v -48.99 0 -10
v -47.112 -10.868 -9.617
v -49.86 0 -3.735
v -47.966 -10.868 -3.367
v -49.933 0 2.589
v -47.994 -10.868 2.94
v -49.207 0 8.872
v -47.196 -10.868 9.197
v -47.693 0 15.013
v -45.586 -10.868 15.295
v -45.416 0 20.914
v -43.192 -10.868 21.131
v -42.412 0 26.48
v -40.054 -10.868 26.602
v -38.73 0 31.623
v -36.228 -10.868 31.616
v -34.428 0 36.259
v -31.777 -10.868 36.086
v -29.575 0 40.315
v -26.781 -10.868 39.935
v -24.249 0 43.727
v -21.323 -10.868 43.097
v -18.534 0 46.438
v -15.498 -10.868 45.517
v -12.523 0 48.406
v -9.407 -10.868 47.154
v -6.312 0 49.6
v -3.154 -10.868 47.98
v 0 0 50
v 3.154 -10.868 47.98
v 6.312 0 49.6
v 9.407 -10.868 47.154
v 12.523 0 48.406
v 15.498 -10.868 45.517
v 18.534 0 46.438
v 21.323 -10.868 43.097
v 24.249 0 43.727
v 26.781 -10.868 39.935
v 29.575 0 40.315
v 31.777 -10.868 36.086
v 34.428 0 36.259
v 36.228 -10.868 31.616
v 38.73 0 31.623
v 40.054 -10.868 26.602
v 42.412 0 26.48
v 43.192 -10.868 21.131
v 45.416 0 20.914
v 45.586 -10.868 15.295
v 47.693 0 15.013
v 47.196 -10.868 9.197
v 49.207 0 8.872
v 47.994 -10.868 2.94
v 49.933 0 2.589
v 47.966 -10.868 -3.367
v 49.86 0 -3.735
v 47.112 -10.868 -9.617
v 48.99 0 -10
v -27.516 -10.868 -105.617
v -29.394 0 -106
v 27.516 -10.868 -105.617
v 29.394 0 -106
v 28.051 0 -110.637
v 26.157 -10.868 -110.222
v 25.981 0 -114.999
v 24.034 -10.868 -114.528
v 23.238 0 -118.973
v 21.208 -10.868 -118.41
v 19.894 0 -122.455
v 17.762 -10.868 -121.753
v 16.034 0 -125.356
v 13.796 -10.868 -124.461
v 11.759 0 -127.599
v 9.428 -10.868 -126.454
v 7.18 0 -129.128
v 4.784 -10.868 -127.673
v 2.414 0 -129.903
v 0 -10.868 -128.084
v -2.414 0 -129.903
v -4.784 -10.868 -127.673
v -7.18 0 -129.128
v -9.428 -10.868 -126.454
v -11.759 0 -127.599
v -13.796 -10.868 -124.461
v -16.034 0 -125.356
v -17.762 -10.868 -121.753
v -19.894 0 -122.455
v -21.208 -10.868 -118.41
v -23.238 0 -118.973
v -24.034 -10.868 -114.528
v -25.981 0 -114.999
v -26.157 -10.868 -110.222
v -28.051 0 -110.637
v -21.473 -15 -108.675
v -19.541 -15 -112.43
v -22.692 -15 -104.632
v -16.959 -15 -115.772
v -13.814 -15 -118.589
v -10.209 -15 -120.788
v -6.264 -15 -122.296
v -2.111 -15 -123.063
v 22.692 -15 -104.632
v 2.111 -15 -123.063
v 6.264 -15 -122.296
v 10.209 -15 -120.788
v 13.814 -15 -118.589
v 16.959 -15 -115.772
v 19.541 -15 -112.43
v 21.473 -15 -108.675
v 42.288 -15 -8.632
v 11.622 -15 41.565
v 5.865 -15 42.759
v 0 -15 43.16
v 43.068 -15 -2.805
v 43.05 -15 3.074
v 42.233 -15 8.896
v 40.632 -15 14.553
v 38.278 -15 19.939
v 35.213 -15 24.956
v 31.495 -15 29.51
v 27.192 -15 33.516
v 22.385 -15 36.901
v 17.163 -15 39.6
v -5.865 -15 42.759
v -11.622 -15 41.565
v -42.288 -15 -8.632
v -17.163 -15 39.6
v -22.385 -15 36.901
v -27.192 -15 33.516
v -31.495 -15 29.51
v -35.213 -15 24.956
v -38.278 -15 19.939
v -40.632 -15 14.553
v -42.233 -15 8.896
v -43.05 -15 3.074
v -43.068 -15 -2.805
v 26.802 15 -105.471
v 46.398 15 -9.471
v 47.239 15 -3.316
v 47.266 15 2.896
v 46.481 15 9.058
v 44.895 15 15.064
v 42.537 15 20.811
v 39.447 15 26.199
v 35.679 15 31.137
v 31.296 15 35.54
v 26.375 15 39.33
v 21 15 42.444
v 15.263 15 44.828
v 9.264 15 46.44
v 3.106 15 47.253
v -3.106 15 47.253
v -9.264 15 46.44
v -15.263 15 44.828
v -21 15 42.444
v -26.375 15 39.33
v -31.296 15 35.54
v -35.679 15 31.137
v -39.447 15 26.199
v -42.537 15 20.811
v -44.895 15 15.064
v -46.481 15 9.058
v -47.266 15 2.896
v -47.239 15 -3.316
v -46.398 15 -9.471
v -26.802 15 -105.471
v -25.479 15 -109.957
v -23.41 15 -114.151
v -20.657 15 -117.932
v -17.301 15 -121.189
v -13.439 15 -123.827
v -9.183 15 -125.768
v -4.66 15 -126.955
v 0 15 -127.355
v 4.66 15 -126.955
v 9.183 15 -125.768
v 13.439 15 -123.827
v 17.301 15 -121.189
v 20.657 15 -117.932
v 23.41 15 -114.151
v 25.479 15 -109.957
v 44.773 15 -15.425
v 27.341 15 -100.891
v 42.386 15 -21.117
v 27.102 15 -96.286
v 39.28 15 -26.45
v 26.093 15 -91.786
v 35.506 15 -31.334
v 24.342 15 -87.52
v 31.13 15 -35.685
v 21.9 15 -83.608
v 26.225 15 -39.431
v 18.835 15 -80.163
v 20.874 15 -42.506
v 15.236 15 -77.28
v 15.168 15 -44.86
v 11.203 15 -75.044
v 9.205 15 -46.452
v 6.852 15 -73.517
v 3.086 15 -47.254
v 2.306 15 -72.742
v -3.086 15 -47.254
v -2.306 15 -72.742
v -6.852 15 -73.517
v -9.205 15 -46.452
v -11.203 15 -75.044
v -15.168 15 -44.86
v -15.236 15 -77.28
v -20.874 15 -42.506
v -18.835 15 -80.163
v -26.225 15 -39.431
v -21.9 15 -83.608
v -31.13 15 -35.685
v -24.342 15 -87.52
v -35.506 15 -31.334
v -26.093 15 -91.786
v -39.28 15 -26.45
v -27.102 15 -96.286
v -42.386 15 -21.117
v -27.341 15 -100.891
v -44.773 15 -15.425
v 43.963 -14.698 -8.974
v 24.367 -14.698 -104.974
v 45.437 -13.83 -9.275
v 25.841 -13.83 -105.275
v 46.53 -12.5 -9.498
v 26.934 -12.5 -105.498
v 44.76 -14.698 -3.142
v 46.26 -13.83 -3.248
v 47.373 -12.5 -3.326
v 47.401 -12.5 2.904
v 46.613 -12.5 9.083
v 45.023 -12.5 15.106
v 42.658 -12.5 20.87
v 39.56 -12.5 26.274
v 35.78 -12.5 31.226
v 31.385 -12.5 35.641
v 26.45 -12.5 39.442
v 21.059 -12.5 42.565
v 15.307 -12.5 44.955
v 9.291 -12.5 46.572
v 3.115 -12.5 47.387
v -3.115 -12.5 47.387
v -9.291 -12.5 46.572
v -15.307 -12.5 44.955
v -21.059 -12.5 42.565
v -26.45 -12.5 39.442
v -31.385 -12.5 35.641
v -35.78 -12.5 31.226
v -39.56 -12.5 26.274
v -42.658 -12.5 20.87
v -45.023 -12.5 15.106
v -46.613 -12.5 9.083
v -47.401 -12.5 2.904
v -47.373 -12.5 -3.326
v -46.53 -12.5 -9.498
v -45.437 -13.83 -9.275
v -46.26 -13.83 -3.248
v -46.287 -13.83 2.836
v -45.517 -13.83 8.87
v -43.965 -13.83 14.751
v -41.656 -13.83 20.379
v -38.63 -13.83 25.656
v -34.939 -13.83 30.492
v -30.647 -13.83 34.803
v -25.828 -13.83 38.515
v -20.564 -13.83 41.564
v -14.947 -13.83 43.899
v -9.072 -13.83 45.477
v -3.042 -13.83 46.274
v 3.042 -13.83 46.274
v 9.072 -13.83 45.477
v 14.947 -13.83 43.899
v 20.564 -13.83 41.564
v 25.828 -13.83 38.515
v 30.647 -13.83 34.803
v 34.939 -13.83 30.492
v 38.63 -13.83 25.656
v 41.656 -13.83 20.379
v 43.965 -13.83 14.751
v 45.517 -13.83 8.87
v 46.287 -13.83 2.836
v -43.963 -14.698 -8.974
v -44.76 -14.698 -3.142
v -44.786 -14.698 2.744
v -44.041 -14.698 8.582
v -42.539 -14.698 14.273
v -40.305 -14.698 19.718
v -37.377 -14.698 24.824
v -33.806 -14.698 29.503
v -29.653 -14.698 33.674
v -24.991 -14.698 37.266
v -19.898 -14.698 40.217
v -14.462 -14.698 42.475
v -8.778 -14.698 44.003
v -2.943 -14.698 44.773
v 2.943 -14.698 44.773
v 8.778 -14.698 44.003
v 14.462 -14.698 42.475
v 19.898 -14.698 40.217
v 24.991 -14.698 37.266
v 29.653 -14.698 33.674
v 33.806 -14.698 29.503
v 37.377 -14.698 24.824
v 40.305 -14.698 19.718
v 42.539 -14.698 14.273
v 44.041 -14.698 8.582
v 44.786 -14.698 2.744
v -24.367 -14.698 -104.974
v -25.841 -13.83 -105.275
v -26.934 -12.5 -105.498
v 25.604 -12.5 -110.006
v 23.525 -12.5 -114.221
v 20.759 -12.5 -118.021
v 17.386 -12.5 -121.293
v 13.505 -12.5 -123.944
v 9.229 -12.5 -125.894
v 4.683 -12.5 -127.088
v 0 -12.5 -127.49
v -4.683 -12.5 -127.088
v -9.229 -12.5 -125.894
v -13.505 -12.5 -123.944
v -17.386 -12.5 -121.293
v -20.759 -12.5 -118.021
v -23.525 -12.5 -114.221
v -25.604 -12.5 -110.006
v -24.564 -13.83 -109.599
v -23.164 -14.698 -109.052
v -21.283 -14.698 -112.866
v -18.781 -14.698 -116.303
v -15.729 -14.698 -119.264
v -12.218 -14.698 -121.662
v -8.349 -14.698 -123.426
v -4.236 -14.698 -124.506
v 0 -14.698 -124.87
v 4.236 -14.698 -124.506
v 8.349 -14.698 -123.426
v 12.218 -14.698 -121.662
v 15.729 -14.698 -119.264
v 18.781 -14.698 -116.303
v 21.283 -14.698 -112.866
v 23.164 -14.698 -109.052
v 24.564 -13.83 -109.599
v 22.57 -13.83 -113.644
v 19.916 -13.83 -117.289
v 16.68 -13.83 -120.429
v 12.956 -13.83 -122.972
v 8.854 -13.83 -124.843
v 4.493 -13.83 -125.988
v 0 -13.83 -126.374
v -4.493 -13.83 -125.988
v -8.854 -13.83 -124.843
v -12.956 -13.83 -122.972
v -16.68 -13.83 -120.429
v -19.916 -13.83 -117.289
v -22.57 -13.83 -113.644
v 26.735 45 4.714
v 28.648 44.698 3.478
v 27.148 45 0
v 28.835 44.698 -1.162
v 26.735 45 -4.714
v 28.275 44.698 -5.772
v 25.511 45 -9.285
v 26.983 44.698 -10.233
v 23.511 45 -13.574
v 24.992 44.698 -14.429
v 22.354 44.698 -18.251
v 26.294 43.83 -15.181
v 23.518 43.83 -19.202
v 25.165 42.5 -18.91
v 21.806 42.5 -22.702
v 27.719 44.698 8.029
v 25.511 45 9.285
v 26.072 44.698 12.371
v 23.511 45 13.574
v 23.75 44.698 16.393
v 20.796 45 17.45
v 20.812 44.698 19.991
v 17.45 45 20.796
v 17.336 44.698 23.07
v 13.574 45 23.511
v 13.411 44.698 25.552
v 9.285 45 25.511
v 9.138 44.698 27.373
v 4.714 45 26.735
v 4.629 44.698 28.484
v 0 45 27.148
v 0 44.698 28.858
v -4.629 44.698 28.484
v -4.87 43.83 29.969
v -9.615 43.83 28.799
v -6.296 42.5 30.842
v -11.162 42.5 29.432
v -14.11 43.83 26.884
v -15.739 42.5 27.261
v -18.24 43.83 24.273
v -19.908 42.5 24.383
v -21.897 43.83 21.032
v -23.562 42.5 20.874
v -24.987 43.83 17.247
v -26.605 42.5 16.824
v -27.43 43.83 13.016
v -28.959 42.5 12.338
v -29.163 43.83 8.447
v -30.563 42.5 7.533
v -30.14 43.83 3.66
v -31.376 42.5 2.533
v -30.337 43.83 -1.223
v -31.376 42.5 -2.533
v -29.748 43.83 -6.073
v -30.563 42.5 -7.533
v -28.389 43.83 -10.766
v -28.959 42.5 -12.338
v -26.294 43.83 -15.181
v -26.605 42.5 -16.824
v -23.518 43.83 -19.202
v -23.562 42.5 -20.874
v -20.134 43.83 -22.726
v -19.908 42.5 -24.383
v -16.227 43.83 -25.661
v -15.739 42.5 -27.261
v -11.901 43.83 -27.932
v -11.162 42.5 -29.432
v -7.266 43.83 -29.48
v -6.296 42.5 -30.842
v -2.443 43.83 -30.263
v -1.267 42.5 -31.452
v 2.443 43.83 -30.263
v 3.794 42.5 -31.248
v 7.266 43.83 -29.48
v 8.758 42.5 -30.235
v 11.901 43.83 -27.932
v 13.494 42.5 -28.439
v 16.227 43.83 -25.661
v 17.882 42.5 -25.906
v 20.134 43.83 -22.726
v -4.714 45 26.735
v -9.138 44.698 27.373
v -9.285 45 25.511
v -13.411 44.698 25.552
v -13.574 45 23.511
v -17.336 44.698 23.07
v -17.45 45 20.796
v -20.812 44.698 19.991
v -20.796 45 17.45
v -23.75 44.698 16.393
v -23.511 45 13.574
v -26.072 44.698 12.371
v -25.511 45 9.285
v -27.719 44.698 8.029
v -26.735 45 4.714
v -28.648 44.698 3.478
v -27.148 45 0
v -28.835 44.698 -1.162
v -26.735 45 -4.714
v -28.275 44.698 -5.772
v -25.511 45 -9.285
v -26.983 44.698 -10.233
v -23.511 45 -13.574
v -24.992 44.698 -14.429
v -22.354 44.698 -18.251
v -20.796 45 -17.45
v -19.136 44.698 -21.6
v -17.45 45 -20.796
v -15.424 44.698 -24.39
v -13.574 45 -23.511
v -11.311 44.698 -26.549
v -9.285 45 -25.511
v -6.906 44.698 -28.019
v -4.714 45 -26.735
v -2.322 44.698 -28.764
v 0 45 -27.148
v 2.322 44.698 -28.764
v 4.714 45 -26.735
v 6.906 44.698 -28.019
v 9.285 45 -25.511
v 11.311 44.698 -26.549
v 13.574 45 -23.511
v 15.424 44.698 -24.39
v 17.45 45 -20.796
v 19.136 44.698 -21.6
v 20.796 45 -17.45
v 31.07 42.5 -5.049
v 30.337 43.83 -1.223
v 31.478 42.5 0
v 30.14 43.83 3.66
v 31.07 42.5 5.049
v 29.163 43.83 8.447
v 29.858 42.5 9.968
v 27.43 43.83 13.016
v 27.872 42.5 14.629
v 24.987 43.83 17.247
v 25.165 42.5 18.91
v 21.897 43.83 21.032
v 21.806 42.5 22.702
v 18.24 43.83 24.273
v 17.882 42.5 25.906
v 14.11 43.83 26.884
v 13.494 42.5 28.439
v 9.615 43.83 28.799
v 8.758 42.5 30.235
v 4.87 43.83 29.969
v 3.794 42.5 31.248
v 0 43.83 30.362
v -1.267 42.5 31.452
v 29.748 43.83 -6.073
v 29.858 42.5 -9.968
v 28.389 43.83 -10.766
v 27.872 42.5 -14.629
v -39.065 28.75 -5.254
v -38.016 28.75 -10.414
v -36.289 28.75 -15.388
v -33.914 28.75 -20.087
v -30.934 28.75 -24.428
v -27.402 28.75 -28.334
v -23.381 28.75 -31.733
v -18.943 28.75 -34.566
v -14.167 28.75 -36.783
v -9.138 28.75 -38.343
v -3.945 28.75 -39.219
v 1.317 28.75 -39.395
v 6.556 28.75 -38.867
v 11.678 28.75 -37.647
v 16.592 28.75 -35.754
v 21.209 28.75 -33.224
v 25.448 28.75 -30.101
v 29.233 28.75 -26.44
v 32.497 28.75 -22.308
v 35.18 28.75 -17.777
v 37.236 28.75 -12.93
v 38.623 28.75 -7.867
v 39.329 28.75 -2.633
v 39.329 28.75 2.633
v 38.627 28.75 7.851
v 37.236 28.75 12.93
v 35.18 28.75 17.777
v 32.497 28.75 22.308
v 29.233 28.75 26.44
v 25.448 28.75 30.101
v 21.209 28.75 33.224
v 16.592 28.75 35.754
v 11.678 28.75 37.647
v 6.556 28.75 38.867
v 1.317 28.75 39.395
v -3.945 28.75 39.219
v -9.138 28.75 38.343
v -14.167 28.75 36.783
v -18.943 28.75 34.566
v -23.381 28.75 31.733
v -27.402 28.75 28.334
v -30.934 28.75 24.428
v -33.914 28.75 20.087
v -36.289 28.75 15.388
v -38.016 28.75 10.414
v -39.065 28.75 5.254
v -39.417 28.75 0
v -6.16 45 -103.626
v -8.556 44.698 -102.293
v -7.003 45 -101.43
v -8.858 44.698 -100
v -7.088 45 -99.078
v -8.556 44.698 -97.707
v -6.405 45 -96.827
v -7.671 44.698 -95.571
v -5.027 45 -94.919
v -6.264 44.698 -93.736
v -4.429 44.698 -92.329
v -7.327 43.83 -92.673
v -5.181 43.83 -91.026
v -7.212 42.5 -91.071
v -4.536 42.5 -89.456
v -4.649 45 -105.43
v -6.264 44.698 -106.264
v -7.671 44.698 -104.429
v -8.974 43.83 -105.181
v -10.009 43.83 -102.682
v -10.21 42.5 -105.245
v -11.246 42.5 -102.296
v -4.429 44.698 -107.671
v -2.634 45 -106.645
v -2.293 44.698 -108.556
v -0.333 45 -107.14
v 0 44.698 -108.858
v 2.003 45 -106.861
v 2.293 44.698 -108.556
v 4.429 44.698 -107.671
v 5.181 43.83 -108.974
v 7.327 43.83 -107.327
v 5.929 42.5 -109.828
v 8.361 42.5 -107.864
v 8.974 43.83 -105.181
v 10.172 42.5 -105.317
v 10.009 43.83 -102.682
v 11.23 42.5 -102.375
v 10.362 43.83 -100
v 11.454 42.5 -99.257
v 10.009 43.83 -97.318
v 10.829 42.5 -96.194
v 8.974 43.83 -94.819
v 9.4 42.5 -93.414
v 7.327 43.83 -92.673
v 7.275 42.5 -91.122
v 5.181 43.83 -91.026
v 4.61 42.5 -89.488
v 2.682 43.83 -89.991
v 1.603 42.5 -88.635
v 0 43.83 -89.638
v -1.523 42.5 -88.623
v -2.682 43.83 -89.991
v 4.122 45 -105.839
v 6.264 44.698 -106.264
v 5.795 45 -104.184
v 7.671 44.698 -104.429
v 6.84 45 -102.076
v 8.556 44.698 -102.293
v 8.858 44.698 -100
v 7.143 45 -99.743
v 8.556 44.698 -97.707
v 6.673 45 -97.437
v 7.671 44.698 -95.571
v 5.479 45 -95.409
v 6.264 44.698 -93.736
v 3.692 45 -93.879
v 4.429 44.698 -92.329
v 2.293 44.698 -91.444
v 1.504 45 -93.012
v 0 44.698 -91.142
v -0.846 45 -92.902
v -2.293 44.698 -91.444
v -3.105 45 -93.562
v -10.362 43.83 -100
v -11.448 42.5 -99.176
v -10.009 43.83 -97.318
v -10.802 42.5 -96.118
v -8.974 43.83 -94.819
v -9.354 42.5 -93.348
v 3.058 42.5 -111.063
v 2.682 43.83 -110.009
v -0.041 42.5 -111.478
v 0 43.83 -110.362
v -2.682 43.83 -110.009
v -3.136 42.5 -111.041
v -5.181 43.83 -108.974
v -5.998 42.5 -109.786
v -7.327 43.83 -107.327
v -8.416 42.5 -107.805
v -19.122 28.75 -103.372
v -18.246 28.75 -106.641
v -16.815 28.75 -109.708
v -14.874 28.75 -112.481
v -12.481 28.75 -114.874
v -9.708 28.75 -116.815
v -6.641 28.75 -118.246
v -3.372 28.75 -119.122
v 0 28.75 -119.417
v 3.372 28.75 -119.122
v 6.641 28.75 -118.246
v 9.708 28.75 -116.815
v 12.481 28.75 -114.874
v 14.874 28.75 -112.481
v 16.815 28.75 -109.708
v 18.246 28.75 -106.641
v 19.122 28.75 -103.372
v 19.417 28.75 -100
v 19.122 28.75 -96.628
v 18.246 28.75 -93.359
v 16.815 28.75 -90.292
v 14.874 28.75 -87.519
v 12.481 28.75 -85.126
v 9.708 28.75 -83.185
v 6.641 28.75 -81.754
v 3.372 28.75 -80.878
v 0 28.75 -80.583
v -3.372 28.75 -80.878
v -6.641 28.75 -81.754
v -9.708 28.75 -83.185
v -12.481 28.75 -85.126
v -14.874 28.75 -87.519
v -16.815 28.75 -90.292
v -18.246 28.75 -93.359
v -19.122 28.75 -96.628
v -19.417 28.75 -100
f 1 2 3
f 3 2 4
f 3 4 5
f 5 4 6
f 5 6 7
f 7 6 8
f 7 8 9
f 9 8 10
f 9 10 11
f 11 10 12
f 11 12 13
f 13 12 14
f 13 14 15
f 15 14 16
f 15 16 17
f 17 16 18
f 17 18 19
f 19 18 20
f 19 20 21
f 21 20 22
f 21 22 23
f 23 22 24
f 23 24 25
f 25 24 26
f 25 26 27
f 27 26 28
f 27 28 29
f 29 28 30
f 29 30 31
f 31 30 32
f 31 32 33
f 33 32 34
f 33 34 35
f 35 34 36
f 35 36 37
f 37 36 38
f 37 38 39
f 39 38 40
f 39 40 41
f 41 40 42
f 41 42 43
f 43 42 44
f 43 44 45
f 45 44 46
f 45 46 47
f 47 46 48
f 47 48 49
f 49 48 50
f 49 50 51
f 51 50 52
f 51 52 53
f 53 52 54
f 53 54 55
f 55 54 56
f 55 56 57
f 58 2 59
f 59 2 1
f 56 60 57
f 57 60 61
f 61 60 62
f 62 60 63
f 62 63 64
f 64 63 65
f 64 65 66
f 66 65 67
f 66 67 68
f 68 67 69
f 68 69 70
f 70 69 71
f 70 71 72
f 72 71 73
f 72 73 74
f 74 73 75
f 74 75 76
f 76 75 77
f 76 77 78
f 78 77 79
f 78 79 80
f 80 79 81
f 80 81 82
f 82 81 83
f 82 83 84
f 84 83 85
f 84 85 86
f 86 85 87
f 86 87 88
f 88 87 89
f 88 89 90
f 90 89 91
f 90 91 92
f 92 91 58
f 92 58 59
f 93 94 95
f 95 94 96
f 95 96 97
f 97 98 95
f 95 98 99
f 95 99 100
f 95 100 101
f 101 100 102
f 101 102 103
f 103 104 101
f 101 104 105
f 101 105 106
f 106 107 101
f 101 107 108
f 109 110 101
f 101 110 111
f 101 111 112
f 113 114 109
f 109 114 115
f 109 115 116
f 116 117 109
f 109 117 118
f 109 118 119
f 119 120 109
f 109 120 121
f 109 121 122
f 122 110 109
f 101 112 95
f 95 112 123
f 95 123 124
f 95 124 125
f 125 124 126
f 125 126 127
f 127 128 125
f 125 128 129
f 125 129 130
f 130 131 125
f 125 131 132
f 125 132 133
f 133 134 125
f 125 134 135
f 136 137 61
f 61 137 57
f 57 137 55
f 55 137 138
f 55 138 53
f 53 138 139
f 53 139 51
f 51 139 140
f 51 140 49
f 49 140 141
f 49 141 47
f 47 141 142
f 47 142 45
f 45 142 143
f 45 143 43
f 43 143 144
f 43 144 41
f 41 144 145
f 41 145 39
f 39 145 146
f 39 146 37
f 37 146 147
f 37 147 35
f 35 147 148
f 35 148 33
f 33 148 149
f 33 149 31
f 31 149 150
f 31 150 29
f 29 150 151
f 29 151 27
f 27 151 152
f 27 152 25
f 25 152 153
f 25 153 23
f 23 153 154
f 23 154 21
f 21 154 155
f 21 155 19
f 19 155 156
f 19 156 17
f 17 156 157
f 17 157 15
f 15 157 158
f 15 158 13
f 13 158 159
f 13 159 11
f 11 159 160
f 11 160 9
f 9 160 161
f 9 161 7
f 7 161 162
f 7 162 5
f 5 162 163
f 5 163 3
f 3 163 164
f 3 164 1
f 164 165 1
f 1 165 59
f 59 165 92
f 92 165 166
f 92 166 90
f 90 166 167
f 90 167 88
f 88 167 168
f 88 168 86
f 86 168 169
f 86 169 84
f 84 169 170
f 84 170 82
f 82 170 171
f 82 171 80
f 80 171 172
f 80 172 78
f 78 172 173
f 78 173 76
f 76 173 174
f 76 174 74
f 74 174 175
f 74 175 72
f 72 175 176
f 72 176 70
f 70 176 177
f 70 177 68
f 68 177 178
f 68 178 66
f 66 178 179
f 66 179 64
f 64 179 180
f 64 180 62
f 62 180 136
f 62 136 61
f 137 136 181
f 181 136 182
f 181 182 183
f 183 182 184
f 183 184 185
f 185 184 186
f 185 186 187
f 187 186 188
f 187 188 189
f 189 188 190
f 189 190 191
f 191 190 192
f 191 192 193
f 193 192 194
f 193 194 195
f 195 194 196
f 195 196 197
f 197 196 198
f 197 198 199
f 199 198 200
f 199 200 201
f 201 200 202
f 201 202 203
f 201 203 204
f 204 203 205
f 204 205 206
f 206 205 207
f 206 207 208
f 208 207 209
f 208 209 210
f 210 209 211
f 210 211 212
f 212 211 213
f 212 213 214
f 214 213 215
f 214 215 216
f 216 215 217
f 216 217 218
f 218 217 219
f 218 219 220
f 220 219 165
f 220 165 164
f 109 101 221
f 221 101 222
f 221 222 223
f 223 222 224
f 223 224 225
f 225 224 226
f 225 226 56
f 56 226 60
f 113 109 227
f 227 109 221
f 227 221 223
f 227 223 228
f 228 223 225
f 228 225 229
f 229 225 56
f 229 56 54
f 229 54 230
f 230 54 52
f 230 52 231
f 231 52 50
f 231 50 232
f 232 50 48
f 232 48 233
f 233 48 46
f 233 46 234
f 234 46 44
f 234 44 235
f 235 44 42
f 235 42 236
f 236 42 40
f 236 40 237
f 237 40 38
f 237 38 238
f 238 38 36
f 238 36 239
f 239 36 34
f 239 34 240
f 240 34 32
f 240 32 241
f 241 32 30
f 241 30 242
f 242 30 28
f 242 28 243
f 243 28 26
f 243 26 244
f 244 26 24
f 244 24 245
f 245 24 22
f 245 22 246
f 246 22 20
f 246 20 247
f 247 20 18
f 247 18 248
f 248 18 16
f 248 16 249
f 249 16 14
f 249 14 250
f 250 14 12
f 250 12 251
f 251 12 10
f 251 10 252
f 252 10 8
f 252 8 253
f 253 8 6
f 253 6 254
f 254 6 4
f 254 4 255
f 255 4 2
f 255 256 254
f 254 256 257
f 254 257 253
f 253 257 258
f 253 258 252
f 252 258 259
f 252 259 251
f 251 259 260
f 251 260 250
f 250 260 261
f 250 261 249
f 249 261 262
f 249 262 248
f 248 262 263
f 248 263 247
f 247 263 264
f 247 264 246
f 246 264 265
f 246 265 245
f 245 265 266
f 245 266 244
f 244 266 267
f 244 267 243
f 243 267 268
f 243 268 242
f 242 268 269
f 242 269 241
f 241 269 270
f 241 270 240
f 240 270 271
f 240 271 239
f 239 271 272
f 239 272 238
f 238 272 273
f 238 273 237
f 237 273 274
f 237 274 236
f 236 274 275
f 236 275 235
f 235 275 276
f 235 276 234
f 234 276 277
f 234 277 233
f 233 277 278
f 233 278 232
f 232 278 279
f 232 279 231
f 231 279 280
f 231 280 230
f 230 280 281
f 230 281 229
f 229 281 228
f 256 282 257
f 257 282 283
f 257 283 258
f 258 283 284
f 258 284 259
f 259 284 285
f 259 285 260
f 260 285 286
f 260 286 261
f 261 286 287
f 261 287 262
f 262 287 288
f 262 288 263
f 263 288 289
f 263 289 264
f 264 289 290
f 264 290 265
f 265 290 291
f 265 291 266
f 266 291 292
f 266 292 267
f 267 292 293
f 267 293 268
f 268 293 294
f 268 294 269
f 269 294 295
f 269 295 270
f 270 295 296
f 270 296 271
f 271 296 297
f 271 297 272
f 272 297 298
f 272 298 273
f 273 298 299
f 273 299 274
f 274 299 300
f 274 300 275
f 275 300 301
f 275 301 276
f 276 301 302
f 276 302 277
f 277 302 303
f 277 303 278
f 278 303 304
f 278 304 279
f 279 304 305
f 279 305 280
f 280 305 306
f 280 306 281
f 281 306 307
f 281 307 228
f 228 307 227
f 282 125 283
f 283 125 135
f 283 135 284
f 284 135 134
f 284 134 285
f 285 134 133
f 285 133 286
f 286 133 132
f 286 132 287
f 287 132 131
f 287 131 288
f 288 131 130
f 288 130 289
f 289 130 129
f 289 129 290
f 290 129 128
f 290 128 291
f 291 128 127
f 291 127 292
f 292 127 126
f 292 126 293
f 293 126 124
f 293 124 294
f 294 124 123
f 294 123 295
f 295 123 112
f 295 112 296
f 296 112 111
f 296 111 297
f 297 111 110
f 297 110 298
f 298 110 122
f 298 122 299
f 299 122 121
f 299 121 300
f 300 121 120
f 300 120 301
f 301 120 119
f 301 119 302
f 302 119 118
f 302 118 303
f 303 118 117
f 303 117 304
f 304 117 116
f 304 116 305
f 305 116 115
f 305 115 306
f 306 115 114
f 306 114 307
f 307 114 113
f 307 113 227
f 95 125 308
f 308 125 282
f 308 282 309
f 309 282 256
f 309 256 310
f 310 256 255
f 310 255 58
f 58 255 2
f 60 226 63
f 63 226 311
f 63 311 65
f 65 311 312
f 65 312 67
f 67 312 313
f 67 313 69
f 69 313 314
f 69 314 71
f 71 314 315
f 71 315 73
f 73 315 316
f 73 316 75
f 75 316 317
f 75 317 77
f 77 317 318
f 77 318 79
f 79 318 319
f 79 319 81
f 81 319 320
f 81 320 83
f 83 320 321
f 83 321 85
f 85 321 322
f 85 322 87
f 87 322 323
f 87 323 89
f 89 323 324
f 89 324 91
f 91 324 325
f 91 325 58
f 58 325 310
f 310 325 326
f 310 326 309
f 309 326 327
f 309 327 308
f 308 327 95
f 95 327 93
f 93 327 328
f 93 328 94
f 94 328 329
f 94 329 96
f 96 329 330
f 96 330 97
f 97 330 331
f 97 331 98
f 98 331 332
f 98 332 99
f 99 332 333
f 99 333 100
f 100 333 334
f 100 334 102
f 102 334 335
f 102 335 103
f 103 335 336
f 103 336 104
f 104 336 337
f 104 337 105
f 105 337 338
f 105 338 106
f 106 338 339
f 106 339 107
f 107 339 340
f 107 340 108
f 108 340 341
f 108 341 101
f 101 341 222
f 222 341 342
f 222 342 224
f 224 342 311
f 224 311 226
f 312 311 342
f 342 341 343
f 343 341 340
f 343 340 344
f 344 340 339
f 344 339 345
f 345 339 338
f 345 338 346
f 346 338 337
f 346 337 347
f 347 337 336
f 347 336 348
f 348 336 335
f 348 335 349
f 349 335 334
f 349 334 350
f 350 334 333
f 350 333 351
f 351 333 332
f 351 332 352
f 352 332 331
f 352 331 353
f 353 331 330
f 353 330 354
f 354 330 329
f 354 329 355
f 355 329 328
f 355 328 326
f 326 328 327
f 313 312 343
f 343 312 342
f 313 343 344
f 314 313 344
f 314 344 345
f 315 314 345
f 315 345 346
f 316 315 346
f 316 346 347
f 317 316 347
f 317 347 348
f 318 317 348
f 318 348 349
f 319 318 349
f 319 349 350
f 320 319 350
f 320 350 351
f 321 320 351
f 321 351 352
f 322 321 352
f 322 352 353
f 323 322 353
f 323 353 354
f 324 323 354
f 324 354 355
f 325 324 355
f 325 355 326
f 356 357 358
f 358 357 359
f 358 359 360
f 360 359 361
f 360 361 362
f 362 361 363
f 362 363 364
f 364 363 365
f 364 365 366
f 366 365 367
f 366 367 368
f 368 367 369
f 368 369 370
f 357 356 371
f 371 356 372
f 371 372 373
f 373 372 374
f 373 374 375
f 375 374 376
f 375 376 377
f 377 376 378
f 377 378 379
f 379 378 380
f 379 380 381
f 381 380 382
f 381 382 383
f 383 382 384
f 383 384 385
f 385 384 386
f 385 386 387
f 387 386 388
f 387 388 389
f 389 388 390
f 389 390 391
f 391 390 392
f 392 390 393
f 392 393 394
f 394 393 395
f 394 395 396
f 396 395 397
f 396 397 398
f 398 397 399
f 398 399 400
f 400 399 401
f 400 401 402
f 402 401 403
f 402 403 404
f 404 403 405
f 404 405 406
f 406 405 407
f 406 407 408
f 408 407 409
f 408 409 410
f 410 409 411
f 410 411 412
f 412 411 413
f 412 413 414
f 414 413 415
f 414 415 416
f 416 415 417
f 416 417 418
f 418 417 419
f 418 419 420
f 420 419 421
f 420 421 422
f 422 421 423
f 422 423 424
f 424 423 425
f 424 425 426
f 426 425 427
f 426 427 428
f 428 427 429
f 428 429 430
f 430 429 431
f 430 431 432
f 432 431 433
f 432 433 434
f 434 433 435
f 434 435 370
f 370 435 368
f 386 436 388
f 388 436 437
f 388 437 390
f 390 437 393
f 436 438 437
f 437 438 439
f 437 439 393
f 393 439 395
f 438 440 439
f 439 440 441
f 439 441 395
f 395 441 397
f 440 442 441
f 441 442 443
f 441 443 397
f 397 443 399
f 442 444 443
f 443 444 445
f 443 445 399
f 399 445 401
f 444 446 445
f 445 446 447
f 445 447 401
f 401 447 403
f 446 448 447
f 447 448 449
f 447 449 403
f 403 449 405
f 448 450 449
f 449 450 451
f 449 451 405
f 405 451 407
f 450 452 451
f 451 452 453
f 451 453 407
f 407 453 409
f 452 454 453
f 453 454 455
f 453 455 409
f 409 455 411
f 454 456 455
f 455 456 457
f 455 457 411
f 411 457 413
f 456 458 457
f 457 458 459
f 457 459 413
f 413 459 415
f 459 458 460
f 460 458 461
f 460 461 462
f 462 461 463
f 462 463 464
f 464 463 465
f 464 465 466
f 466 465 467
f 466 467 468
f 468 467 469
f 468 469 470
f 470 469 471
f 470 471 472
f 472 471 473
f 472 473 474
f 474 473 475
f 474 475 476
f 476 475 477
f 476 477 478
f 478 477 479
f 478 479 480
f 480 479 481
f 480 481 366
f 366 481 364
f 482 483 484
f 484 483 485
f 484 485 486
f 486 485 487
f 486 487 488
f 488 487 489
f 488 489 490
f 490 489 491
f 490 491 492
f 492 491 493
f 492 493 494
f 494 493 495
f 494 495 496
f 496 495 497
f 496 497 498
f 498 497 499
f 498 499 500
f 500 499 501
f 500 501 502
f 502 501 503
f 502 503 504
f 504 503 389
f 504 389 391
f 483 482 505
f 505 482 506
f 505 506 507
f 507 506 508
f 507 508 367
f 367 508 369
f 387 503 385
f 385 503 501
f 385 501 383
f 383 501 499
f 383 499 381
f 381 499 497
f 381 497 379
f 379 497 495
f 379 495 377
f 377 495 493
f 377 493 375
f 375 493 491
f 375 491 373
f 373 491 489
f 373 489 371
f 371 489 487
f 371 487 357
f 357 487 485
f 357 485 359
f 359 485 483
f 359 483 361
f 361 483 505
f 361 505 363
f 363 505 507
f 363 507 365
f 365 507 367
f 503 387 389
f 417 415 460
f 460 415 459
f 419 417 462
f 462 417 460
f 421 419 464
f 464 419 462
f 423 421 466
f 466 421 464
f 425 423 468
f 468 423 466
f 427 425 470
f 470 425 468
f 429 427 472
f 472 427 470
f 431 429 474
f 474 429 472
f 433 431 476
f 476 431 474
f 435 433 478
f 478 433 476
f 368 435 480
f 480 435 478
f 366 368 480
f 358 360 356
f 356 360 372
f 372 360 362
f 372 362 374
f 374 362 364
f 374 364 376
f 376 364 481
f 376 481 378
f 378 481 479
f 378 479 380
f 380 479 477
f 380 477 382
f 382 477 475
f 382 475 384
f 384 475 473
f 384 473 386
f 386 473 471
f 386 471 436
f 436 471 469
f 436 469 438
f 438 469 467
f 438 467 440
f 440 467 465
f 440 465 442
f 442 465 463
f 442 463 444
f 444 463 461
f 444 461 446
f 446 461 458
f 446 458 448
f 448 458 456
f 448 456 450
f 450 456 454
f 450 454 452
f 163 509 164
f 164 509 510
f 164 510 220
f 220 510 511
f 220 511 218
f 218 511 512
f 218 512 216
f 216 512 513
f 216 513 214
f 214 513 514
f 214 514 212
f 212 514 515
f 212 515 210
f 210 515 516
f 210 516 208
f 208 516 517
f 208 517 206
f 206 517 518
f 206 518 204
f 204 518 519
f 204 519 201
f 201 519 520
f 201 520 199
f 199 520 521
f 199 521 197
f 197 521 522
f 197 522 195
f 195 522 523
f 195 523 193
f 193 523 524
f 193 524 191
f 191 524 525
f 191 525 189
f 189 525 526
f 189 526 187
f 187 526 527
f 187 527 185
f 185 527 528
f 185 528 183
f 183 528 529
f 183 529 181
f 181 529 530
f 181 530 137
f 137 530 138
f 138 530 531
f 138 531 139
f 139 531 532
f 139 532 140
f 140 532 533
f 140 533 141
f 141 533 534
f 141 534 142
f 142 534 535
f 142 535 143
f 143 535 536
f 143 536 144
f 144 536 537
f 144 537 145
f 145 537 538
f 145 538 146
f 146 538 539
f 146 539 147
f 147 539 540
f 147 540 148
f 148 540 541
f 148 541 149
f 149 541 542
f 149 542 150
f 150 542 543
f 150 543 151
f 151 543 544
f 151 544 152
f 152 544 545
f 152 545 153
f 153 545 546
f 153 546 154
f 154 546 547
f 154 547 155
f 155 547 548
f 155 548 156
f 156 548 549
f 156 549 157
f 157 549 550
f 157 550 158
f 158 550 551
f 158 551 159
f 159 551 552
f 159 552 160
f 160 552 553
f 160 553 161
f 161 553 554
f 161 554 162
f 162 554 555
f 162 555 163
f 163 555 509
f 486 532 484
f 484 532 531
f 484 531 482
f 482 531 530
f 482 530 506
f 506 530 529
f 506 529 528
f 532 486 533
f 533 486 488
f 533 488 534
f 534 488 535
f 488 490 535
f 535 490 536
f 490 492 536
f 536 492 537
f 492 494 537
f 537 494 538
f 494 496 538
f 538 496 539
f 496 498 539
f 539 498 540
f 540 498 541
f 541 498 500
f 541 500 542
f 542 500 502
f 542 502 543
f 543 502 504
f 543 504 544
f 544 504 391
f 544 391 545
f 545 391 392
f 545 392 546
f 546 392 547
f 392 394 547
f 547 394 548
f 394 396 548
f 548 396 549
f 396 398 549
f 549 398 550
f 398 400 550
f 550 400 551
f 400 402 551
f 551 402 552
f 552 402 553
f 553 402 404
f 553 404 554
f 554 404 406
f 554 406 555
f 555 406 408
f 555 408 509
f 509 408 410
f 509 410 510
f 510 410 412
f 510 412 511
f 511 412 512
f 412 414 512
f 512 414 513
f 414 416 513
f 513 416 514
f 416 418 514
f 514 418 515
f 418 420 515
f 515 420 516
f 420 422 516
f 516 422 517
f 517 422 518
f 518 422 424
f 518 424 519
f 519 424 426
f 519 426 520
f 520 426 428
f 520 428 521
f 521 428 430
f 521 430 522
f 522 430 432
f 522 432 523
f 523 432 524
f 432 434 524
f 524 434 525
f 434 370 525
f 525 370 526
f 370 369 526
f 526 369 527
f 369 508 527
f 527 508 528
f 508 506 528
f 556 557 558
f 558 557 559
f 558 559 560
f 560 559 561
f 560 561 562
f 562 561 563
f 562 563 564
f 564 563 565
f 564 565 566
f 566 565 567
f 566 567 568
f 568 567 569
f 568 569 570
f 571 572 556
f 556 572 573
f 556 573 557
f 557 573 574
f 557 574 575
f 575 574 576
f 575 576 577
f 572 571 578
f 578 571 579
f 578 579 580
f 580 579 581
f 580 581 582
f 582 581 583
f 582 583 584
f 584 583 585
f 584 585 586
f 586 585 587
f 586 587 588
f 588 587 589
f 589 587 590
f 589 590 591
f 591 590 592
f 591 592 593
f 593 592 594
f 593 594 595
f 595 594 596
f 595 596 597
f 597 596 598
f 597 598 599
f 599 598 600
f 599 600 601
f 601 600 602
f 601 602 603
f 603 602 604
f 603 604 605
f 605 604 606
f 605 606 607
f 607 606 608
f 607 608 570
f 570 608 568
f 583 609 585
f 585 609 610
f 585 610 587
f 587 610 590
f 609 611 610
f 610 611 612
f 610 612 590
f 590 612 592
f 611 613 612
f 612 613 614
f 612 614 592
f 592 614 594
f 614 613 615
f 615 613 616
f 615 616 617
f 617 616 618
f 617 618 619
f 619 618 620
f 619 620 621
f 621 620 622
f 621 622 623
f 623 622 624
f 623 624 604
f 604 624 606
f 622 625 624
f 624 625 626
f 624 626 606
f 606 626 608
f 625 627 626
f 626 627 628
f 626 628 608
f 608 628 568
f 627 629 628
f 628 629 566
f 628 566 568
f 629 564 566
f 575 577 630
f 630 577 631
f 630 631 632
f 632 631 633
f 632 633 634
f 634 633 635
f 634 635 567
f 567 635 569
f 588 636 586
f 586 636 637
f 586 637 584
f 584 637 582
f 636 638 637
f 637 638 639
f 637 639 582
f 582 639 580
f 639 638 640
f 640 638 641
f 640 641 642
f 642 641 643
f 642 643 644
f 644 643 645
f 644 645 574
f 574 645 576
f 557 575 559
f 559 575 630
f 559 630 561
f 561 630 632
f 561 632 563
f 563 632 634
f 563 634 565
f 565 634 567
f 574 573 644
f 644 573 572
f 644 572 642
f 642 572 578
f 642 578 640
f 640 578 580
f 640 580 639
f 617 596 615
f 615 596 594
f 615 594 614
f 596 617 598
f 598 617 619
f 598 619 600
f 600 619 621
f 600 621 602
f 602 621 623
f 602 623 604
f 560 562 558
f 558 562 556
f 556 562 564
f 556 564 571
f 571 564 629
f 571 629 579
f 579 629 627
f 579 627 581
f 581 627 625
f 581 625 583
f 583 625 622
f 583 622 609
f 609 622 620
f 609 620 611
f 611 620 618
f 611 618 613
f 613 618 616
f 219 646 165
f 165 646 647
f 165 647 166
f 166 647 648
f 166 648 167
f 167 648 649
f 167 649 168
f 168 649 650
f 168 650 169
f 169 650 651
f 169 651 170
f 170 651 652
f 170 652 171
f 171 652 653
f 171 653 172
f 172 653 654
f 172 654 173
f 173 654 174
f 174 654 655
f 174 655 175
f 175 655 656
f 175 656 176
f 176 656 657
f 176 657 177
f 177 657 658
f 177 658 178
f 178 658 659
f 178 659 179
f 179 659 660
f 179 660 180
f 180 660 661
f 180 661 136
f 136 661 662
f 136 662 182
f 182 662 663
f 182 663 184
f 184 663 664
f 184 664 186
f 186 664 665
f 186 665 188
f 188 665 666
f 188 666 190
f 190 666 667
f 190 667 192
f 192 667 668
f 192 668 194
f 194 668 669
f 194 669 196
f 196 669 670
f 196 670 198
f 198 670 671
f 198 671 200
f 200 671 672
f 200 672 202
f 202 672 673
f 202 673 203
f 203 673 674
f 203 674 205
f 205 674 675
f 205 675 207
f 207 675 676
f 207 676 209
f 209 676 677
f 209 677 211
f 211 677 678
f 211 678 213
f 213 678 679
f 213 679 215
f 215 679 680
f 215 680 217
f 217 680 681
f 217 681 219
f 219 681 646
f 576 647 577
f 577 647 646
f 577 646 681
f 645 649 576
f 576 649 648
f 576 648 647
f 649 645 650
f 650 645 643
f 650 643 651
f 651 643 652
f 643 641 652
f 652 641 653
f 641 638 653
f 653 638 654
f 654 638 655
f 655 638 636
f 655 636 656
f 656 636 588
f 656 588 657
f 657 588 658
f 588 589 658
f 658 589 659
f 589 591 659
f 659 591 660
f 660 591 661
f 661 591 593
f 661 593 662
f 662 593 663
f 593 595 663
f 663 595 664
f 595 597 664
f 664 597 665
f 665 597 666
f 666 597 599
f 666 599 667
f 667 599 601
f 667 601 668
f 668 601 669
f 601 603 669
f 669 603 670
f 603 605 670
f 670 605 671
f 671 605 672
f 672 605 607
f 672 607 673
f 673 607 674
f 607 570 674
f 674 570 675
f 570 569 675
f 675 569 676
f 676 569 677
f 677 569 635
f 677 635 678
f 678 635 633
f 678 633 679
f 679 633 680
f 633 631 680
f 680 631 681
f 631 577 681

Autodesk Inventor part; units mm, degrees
ref_plane "YZ Plane" through (0, 0, 0) normal (1, 0, 0) x (0, 1, 0)
ref_plane "XZ Plane" through (0, 0, 0) normal (0, 1, 0) x (-1, 0, 0)
sketch "Sketch1" plane through (0, 0, 0) normal (0, 1, 0) x (-1, 0, 0)
  arc A0 (-48.9898, -10) -> (48.9898, -10) centre (0, 0) ccw construction
  line L0 (0, 0) -> (0, -100) construction
  arc A1 (29.3939, -106) -> (-29.3939, -106) centre (0, -100) ccw construction
  line L1 (48.9898, -10) -> (29.3939, -106)
  line L2 (-48.9898, -10) -> (-29.3939, -106)
  arc A2 (48.9898, -10) -> (-48.9898, -10) centre (0, 0) ccw
  arc A3 (-29.3939, -106) -> (29.3939, -106) centre (0, -100) ccw
  dimension "d0" = 100
  dimension "d1" = 100
  dimension "d2" = 60
extrude "Extrusion1" add sketch "Sketch1" along normal mid plane 30 draft -10
ref_plane "Work Plane1" through (47.6941, 7.5, -9.7355) normal (0, 1, 0) x (1, 0, 0)
sketch "Sketch2" plane through (0, 15, 0) normal (0, 1, 0) x (1, 0, 0)
  line L0 (-46.3983, 9.471) -> (-26.8024, 105.471) projected
  circle A0 centre (0, 0) radius 47.3551
extrude "Extrusion2" add sketch "Sketch2" along normal blind 30 draft -30
sketch "Sketch3" plane through (0, 15, 0) normal (0, 1, 0) x (1, 0, 0)
  arc A0 (26.8024, 105.471) -> (-26.8024, 105.471) centre (0, 100) ccw projected
  circle A1 centre (0, 100) radius 27.3551
  point P0 (0, 0)
  point P1 (-26.8024, 105.471)
  dimension "d7" = 54.7102
extrude "Extrusion3" add sketch "Sketch3" along normal blind 30 draft -30
fillet "Fillet1" radius 5 6 edges at (-30.0346, 45, 0) (-9.8318, 45, -97.9931) (0, -15, -127.3551) (-36.6004, -15, -57.471) (0, -15, 47.3551) (36.6004, -15, -57.471)
properties part number "LE-1.1"
